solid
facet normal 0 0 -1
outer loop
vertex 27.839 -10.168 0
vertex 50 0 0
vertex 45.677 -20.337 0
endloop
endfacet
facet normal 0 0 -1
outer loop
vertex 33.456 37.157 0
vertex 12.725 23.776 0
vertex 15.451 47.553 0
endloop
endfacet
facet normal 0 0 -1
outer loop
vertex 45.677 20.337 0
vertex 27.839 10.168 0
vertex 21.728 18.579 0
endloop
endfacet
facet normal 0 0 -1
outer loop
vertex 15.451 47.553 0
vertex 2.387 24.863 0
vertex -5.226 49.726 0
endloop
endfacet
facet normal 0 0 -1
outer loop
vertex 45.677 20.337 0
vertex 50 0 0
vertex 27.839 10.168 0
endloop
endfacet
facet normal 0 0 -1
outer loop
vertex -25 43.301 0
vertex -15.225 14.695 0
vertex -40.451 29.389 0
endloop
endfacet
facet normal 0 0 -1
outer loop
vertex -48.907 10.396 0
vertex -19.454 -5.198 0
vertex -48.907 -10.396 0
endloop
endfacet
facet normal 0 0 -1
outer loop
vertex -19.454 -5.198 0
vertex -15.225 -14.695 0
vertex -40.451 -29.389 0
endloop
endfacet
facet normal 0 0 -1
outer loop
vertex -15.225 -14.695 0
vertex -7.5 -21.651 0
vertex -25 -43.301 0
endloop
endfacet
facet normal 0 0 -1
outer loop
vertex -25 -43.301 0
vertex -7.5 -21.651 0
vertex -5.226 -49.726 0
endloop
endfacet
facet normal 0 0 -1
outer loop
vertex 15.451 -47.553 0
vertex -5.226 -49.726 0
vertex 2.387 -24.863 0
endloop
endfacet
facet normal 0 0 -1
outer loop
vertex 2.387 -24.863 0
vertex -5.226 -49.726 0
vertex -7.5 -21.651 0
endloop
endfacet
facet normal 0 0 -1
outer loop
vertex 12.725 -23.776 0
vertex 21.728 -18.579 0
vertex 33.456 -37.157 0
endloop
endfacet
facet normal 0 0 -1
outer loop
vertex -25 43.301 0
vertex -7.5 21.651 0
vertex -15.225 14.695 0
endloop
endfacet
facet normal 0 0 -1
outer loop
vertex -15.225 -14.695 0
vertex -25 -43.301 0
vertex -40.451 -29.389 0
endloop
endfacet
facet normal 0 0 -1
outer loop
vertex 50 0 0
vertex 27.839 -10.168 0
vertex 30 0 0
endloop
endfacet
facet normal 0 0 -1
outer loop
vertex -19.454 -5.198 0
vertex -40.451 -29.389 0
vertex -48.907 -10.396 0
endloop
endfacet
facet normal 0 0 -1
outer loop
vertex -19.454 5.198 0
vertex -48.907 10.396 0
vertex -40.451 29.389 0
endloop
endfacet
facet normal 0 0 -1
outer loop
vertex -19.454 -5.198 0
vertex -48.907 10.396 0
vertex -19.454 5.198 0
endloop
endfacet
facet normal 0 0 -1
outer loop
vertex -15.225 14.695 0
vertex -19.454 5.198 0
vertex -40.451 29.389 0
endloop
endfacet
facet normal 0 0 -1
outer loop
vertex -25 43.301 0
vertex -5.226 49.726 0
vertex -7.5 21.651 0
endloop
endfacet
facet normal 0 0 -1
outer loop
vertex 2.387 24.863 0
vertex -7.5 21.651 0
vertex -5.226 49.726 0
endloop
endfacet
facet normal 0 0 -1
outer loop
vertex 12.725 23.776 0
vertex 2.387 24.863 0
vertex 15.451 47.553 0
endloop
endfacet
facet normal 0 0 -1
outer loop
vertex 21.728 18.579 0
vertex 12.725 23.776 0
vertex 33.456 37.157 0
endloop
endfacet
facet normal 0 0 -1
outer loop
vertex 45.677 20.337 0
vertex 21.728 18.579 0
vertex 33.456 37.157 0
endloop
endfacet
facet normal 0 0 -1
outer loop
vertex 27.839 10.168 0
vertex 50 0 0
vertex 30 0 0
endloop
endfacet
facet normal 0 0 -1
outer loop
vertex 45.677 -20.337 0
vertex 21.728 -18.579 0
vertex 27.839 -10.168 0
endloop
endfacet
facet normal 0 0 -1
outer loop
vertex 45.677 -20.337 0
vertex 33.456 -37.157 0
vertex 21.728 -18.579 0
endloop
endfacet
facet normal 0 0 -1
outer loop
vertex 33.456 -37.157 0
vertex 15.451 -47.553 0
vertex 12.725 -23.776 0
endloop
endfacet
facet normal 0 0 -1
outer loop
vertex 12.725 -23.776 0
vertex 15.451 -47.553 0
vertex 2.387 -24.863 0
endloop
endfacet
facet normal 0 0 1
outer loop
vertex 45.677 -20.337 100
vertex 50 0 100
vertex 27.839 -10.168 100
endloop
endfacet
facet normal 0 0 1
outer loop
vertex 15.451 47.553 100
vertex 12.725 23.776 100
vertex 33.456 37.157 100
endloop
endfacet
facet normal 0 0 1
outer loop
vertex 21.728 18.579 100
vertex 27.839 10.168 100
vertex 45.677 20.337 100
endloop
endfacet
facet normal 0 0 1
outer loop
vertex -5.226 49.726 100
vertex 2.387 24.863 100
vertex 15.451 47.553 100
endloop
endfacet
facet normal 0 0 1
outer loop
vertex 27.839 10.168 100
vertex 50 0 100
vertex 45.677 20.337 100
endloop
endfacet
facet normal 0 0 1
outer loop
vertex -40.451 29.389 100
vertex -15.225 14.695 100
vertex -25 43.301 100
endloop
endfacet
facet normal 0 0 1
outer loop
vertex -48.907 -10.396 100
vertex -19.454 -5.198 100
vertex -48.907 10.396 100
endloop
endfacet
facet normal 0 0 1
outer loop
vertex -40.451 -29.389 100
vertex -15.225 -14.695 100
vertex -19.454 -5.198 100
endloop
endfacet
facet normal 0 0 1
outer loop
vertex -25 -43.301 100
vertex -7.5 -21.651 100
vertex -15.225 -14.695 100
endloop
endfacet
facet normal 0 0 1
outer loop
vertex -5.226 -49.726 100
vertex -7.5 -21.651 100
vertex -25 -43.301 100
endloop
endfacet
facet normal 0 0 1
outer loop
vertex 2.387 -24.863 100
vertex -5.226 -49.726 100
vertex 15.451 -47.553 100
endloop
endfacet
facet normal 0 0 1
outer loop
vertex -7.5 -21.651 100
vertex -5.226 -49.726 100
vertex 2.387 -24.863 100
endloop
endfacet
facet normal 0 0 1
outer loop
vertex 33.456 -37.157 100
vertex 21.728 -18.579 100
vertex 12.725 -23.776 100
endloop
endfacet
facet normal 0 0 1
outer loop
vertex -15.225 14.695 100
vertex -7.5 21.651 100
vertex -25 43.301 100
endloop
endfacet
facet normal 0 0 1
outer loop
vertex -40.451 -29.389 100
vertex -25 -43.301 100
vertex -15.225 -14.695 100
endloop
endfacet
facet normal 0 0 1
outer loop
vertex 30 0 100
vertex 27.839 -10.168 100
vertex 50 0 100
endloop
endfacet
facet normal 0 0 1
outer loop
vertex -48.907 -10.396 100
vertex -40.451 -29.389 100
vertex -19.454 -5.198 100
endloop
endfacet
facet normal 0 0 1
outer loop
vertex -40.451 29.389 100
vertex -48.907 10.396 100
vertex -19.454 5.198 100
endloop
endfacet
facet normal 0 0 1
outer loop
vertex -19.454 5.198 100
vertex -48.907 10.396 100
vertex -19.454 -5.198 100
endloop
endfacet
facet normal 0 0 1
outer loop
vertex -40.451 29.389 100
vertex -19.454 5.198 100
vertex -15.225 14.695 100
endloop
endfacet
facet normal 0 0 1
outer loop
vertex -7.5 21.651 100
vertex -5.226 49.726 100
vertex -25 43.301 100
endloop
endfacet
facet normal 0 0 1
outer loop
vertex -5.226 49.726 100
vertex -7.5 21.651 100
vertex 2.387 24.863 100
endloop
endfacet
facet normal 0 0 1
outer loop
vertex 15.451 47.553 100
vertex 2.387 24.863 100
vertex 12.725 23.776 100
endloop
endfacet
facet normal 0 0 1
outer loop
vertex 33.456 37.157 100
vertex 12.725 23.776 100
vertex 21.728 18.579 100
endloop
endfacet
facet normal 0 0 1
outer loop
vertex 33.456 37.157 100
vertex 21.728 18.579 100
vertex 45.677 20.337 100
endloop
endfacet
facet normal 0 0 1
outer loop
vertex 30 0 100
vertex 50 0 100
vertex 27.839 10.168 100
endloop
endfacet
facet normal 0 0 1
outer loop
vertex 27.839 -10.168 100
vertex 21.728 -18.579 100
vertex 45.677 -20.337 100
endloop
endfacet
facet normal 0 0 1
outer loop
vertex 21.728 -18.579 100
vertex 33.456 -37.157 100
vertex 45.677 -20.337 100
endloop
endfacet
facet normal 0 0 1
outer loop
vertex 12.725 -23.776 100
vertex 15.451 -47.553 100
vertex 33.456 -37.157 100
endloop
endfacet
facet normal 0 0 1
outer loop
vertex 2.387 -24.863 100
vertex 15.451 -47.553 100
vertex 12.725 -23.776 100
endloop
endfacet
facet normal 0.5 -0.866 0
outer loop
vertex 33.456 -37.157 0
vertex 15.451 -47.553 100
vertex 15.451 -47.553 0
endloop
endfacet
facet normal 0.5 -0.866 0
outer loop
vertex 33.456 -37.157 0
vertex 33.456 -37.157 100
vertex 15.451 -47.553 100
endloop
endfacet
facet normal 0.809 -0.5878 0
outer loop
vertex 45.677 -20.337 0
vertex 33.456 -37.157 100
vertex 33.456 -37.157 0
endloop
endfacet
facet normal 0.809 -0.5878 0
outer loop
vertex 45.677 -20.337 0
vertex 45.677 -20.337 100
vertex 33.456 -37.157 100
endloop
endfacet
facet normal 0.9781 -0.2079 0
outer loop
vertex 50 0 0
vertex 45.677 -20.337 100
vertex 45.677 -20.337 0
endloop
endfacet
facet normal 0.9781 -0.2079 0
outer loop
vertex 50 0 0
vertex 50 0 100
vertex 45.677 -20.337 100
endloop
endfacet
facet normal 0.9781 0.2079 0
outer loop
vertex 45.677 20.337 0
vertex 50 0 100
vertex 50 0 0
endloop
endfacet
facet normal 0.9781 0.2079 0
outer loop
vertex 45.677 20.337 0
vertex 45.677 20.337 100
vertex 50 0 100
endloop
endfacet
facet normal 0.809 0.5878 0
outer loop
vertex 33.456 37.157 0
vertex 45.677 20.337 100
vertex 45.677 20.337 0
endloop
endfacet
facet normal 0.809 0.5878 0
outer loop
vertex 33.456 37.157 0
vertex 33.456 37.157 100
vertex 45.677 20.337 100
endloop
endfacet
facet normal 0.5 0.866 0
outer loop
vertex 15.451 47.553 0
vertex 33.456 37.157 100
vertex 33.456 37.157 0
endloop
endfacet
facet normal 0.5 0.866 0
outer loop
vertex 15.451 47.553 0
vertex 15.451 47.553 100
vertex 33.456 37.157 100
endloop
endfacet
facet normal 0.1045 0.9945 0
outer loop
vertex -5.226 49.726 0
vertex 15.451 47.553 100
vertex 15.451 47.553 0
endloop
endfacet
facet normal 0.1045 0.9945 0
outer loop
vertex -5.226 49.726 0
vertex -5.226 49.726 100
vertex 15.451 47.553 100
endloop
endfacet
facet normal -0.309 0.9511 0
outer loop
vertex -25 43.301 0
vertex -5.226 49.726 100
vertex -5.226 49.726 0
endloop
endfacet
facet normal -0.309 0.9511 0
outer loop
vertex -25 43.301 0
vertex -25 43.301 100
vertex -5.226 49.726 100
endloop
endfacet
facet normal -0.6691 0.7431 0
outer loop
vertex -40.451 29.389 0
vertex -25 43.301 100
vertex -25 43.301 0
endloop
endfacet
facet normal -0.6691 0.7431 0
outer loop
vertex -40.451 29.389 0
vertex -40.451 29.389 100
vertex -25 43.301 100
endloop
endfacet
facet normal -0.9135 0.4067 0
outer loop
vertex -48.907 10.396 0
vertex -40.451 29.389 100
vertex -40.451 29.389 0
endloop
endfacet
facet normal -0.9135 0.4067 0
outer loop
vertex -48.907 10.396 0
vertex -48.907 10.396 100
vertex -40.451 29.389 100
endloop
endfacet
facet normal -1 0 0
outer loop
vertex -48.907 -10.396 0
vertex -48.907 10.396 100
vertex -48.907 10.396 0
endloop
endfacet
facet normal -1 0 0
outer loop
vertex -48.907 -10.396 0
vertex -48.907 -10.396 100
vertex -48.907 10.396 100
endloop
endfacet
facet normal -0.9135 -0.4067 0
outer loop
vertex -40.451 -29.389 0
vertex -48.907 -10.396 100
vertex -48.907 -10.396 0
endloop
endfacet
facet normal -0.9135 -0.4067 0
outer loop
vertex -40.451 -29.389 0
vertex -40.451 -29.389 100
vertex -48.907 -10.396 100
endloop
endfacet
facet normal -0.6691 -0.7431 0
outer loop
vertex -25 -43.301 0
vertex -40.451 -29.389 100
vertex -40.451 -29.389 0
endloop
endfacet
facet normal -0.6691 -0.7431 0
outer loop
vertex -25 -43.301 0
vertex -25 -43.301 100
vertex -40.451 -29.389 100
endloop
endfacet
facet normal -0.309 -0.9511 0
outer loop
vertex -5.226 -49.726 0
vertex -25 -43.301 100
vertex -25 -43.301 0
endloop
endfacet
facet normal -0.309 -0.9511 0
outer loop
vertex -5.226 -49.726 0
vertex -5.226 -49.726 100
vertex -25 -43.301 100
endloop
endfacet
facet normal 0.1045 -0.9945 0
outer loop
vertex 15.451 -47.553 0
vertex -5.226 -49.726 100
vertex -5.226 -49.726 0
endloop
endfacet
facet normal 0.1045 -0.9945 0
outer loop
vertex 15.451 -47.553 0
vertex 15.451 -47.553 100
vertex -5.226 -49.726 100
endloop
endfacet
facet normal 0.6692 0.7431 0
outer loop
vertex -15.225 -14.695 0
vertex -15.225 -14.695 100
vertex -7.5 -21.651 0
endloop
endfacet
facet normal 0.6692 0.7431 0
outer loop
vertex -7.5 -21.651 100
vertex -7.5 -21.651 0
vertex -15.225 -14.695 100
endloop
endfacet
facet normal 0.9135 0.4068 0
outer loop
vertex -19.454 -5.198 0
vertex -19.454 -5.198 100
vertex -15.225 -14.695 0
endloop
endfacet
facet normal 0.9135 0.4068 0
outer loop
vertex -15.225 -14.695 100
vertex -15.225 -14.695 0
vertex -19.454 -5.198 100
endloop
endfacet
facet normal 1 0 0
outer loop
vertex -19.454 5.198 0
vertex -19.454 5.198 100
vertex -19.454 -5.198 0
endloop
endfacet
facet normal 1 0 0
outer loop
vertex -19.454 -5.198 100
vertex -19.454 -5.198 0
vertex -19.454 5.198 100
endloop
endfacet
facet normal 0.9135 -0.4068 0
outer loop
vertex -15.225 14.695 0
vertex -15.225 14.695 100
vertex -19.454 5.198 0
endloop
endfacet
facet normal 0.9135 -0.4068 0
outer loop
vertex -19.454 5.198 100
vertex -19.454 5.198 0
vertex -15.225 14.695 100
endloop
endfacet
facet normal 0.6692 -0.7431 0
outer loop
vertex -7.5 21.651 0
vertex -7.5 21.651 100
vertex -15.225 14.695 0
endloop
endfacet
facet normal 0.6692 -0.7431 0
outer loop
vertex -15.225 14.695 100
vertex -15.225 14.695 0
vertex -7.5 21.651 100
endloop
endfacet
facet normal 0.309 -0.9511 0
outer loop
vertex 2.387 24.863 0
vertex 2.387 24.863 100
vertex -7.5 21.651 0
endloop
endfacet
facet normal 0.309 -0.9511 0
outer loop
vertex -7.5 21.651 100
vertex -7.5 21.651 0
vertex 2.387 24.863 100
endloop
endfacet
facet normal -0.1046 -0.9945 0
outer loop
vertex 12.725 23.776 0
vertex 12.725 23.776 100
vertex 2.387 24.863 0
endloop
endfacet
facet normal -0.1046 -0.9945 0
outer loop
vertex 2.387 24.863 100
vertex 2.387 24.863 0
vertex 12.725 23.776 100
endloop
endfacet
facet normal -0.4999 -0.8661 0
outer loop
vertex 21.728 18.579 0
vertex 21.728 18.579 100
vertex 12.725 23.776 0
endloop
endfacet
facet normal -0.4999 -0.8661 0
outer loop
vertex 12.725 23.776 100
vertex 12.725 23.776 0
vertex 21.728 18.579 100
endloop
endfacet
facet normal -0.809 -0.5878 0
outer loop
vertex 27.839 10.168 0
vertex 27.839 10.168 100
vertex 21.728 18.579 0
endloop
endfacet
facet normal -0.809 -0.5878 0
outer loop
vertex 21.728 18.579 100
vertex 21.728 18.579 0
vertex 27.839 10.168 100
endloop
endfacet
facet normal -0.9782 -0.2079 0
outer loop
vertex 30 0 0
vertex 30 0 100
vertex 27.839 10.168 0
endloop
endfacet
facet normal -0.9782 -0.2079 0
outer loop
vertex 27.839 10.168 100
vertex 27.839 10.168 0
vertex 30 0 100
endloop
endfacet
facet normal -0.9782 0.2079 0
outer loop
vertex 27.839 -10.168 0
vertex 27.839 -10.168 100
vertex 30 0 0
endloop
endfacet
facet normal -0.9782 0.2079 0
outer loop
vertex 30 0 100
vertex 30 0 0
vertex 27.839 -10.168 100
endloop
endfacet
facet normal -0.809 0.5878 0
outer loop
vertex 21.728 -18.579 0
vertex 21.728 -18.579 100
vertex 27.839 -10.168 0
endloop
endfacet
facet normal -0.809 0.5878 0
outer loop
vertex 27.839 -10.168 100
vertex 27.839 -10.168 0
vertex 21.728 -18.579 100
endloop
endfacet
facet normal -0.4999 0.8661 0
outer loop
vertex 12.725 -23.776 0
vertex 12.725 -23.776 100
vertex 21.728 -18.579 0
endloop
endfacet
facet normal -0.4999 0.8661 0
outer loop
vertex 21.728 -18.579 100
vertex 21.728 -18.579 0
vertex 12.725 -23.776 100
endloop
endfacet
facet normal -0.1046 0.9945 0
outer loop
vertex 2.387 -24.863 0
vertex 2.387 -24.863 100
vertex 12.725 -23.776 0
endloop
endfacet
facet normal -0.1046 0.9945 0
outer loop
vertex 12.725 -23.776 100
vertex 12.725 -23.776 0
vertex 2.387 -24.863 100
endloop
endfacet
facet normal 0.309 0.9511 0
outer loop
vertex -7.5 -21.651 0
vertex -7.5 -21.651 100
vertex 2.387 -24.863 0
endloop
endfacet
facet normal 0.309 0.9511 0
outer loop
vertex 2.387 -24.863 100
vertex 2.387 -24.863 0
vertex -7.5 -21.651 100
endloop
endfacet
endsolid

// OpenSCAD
// Parameters for the nautilus
radius = 50;
height = 100;
turns = 15;
wall_thickness = 2;

module nautilus(radius, height, turns, wall_thickness) {
  linear_extrude(height = height, convexity = 10) {
    difference() {
      circle(r = radius, $fn = turns);
      translate([radius * 0.1, 0, 0]) {
        circle(r = radius * 0.5, $fn = turns);
      }
    }
    
    for (i = [0:turns - 1]) {
      rotate([0, 0, 360 * i / turns]) {
        translate([radius * 0.1, 0, 0]) {
          cylinder(h = height * i / turns, r = radius * 0.2, $fn = 30);
        }
      }
    }
  }
}

nautilus(radius, height, turns, wall_thickness);
